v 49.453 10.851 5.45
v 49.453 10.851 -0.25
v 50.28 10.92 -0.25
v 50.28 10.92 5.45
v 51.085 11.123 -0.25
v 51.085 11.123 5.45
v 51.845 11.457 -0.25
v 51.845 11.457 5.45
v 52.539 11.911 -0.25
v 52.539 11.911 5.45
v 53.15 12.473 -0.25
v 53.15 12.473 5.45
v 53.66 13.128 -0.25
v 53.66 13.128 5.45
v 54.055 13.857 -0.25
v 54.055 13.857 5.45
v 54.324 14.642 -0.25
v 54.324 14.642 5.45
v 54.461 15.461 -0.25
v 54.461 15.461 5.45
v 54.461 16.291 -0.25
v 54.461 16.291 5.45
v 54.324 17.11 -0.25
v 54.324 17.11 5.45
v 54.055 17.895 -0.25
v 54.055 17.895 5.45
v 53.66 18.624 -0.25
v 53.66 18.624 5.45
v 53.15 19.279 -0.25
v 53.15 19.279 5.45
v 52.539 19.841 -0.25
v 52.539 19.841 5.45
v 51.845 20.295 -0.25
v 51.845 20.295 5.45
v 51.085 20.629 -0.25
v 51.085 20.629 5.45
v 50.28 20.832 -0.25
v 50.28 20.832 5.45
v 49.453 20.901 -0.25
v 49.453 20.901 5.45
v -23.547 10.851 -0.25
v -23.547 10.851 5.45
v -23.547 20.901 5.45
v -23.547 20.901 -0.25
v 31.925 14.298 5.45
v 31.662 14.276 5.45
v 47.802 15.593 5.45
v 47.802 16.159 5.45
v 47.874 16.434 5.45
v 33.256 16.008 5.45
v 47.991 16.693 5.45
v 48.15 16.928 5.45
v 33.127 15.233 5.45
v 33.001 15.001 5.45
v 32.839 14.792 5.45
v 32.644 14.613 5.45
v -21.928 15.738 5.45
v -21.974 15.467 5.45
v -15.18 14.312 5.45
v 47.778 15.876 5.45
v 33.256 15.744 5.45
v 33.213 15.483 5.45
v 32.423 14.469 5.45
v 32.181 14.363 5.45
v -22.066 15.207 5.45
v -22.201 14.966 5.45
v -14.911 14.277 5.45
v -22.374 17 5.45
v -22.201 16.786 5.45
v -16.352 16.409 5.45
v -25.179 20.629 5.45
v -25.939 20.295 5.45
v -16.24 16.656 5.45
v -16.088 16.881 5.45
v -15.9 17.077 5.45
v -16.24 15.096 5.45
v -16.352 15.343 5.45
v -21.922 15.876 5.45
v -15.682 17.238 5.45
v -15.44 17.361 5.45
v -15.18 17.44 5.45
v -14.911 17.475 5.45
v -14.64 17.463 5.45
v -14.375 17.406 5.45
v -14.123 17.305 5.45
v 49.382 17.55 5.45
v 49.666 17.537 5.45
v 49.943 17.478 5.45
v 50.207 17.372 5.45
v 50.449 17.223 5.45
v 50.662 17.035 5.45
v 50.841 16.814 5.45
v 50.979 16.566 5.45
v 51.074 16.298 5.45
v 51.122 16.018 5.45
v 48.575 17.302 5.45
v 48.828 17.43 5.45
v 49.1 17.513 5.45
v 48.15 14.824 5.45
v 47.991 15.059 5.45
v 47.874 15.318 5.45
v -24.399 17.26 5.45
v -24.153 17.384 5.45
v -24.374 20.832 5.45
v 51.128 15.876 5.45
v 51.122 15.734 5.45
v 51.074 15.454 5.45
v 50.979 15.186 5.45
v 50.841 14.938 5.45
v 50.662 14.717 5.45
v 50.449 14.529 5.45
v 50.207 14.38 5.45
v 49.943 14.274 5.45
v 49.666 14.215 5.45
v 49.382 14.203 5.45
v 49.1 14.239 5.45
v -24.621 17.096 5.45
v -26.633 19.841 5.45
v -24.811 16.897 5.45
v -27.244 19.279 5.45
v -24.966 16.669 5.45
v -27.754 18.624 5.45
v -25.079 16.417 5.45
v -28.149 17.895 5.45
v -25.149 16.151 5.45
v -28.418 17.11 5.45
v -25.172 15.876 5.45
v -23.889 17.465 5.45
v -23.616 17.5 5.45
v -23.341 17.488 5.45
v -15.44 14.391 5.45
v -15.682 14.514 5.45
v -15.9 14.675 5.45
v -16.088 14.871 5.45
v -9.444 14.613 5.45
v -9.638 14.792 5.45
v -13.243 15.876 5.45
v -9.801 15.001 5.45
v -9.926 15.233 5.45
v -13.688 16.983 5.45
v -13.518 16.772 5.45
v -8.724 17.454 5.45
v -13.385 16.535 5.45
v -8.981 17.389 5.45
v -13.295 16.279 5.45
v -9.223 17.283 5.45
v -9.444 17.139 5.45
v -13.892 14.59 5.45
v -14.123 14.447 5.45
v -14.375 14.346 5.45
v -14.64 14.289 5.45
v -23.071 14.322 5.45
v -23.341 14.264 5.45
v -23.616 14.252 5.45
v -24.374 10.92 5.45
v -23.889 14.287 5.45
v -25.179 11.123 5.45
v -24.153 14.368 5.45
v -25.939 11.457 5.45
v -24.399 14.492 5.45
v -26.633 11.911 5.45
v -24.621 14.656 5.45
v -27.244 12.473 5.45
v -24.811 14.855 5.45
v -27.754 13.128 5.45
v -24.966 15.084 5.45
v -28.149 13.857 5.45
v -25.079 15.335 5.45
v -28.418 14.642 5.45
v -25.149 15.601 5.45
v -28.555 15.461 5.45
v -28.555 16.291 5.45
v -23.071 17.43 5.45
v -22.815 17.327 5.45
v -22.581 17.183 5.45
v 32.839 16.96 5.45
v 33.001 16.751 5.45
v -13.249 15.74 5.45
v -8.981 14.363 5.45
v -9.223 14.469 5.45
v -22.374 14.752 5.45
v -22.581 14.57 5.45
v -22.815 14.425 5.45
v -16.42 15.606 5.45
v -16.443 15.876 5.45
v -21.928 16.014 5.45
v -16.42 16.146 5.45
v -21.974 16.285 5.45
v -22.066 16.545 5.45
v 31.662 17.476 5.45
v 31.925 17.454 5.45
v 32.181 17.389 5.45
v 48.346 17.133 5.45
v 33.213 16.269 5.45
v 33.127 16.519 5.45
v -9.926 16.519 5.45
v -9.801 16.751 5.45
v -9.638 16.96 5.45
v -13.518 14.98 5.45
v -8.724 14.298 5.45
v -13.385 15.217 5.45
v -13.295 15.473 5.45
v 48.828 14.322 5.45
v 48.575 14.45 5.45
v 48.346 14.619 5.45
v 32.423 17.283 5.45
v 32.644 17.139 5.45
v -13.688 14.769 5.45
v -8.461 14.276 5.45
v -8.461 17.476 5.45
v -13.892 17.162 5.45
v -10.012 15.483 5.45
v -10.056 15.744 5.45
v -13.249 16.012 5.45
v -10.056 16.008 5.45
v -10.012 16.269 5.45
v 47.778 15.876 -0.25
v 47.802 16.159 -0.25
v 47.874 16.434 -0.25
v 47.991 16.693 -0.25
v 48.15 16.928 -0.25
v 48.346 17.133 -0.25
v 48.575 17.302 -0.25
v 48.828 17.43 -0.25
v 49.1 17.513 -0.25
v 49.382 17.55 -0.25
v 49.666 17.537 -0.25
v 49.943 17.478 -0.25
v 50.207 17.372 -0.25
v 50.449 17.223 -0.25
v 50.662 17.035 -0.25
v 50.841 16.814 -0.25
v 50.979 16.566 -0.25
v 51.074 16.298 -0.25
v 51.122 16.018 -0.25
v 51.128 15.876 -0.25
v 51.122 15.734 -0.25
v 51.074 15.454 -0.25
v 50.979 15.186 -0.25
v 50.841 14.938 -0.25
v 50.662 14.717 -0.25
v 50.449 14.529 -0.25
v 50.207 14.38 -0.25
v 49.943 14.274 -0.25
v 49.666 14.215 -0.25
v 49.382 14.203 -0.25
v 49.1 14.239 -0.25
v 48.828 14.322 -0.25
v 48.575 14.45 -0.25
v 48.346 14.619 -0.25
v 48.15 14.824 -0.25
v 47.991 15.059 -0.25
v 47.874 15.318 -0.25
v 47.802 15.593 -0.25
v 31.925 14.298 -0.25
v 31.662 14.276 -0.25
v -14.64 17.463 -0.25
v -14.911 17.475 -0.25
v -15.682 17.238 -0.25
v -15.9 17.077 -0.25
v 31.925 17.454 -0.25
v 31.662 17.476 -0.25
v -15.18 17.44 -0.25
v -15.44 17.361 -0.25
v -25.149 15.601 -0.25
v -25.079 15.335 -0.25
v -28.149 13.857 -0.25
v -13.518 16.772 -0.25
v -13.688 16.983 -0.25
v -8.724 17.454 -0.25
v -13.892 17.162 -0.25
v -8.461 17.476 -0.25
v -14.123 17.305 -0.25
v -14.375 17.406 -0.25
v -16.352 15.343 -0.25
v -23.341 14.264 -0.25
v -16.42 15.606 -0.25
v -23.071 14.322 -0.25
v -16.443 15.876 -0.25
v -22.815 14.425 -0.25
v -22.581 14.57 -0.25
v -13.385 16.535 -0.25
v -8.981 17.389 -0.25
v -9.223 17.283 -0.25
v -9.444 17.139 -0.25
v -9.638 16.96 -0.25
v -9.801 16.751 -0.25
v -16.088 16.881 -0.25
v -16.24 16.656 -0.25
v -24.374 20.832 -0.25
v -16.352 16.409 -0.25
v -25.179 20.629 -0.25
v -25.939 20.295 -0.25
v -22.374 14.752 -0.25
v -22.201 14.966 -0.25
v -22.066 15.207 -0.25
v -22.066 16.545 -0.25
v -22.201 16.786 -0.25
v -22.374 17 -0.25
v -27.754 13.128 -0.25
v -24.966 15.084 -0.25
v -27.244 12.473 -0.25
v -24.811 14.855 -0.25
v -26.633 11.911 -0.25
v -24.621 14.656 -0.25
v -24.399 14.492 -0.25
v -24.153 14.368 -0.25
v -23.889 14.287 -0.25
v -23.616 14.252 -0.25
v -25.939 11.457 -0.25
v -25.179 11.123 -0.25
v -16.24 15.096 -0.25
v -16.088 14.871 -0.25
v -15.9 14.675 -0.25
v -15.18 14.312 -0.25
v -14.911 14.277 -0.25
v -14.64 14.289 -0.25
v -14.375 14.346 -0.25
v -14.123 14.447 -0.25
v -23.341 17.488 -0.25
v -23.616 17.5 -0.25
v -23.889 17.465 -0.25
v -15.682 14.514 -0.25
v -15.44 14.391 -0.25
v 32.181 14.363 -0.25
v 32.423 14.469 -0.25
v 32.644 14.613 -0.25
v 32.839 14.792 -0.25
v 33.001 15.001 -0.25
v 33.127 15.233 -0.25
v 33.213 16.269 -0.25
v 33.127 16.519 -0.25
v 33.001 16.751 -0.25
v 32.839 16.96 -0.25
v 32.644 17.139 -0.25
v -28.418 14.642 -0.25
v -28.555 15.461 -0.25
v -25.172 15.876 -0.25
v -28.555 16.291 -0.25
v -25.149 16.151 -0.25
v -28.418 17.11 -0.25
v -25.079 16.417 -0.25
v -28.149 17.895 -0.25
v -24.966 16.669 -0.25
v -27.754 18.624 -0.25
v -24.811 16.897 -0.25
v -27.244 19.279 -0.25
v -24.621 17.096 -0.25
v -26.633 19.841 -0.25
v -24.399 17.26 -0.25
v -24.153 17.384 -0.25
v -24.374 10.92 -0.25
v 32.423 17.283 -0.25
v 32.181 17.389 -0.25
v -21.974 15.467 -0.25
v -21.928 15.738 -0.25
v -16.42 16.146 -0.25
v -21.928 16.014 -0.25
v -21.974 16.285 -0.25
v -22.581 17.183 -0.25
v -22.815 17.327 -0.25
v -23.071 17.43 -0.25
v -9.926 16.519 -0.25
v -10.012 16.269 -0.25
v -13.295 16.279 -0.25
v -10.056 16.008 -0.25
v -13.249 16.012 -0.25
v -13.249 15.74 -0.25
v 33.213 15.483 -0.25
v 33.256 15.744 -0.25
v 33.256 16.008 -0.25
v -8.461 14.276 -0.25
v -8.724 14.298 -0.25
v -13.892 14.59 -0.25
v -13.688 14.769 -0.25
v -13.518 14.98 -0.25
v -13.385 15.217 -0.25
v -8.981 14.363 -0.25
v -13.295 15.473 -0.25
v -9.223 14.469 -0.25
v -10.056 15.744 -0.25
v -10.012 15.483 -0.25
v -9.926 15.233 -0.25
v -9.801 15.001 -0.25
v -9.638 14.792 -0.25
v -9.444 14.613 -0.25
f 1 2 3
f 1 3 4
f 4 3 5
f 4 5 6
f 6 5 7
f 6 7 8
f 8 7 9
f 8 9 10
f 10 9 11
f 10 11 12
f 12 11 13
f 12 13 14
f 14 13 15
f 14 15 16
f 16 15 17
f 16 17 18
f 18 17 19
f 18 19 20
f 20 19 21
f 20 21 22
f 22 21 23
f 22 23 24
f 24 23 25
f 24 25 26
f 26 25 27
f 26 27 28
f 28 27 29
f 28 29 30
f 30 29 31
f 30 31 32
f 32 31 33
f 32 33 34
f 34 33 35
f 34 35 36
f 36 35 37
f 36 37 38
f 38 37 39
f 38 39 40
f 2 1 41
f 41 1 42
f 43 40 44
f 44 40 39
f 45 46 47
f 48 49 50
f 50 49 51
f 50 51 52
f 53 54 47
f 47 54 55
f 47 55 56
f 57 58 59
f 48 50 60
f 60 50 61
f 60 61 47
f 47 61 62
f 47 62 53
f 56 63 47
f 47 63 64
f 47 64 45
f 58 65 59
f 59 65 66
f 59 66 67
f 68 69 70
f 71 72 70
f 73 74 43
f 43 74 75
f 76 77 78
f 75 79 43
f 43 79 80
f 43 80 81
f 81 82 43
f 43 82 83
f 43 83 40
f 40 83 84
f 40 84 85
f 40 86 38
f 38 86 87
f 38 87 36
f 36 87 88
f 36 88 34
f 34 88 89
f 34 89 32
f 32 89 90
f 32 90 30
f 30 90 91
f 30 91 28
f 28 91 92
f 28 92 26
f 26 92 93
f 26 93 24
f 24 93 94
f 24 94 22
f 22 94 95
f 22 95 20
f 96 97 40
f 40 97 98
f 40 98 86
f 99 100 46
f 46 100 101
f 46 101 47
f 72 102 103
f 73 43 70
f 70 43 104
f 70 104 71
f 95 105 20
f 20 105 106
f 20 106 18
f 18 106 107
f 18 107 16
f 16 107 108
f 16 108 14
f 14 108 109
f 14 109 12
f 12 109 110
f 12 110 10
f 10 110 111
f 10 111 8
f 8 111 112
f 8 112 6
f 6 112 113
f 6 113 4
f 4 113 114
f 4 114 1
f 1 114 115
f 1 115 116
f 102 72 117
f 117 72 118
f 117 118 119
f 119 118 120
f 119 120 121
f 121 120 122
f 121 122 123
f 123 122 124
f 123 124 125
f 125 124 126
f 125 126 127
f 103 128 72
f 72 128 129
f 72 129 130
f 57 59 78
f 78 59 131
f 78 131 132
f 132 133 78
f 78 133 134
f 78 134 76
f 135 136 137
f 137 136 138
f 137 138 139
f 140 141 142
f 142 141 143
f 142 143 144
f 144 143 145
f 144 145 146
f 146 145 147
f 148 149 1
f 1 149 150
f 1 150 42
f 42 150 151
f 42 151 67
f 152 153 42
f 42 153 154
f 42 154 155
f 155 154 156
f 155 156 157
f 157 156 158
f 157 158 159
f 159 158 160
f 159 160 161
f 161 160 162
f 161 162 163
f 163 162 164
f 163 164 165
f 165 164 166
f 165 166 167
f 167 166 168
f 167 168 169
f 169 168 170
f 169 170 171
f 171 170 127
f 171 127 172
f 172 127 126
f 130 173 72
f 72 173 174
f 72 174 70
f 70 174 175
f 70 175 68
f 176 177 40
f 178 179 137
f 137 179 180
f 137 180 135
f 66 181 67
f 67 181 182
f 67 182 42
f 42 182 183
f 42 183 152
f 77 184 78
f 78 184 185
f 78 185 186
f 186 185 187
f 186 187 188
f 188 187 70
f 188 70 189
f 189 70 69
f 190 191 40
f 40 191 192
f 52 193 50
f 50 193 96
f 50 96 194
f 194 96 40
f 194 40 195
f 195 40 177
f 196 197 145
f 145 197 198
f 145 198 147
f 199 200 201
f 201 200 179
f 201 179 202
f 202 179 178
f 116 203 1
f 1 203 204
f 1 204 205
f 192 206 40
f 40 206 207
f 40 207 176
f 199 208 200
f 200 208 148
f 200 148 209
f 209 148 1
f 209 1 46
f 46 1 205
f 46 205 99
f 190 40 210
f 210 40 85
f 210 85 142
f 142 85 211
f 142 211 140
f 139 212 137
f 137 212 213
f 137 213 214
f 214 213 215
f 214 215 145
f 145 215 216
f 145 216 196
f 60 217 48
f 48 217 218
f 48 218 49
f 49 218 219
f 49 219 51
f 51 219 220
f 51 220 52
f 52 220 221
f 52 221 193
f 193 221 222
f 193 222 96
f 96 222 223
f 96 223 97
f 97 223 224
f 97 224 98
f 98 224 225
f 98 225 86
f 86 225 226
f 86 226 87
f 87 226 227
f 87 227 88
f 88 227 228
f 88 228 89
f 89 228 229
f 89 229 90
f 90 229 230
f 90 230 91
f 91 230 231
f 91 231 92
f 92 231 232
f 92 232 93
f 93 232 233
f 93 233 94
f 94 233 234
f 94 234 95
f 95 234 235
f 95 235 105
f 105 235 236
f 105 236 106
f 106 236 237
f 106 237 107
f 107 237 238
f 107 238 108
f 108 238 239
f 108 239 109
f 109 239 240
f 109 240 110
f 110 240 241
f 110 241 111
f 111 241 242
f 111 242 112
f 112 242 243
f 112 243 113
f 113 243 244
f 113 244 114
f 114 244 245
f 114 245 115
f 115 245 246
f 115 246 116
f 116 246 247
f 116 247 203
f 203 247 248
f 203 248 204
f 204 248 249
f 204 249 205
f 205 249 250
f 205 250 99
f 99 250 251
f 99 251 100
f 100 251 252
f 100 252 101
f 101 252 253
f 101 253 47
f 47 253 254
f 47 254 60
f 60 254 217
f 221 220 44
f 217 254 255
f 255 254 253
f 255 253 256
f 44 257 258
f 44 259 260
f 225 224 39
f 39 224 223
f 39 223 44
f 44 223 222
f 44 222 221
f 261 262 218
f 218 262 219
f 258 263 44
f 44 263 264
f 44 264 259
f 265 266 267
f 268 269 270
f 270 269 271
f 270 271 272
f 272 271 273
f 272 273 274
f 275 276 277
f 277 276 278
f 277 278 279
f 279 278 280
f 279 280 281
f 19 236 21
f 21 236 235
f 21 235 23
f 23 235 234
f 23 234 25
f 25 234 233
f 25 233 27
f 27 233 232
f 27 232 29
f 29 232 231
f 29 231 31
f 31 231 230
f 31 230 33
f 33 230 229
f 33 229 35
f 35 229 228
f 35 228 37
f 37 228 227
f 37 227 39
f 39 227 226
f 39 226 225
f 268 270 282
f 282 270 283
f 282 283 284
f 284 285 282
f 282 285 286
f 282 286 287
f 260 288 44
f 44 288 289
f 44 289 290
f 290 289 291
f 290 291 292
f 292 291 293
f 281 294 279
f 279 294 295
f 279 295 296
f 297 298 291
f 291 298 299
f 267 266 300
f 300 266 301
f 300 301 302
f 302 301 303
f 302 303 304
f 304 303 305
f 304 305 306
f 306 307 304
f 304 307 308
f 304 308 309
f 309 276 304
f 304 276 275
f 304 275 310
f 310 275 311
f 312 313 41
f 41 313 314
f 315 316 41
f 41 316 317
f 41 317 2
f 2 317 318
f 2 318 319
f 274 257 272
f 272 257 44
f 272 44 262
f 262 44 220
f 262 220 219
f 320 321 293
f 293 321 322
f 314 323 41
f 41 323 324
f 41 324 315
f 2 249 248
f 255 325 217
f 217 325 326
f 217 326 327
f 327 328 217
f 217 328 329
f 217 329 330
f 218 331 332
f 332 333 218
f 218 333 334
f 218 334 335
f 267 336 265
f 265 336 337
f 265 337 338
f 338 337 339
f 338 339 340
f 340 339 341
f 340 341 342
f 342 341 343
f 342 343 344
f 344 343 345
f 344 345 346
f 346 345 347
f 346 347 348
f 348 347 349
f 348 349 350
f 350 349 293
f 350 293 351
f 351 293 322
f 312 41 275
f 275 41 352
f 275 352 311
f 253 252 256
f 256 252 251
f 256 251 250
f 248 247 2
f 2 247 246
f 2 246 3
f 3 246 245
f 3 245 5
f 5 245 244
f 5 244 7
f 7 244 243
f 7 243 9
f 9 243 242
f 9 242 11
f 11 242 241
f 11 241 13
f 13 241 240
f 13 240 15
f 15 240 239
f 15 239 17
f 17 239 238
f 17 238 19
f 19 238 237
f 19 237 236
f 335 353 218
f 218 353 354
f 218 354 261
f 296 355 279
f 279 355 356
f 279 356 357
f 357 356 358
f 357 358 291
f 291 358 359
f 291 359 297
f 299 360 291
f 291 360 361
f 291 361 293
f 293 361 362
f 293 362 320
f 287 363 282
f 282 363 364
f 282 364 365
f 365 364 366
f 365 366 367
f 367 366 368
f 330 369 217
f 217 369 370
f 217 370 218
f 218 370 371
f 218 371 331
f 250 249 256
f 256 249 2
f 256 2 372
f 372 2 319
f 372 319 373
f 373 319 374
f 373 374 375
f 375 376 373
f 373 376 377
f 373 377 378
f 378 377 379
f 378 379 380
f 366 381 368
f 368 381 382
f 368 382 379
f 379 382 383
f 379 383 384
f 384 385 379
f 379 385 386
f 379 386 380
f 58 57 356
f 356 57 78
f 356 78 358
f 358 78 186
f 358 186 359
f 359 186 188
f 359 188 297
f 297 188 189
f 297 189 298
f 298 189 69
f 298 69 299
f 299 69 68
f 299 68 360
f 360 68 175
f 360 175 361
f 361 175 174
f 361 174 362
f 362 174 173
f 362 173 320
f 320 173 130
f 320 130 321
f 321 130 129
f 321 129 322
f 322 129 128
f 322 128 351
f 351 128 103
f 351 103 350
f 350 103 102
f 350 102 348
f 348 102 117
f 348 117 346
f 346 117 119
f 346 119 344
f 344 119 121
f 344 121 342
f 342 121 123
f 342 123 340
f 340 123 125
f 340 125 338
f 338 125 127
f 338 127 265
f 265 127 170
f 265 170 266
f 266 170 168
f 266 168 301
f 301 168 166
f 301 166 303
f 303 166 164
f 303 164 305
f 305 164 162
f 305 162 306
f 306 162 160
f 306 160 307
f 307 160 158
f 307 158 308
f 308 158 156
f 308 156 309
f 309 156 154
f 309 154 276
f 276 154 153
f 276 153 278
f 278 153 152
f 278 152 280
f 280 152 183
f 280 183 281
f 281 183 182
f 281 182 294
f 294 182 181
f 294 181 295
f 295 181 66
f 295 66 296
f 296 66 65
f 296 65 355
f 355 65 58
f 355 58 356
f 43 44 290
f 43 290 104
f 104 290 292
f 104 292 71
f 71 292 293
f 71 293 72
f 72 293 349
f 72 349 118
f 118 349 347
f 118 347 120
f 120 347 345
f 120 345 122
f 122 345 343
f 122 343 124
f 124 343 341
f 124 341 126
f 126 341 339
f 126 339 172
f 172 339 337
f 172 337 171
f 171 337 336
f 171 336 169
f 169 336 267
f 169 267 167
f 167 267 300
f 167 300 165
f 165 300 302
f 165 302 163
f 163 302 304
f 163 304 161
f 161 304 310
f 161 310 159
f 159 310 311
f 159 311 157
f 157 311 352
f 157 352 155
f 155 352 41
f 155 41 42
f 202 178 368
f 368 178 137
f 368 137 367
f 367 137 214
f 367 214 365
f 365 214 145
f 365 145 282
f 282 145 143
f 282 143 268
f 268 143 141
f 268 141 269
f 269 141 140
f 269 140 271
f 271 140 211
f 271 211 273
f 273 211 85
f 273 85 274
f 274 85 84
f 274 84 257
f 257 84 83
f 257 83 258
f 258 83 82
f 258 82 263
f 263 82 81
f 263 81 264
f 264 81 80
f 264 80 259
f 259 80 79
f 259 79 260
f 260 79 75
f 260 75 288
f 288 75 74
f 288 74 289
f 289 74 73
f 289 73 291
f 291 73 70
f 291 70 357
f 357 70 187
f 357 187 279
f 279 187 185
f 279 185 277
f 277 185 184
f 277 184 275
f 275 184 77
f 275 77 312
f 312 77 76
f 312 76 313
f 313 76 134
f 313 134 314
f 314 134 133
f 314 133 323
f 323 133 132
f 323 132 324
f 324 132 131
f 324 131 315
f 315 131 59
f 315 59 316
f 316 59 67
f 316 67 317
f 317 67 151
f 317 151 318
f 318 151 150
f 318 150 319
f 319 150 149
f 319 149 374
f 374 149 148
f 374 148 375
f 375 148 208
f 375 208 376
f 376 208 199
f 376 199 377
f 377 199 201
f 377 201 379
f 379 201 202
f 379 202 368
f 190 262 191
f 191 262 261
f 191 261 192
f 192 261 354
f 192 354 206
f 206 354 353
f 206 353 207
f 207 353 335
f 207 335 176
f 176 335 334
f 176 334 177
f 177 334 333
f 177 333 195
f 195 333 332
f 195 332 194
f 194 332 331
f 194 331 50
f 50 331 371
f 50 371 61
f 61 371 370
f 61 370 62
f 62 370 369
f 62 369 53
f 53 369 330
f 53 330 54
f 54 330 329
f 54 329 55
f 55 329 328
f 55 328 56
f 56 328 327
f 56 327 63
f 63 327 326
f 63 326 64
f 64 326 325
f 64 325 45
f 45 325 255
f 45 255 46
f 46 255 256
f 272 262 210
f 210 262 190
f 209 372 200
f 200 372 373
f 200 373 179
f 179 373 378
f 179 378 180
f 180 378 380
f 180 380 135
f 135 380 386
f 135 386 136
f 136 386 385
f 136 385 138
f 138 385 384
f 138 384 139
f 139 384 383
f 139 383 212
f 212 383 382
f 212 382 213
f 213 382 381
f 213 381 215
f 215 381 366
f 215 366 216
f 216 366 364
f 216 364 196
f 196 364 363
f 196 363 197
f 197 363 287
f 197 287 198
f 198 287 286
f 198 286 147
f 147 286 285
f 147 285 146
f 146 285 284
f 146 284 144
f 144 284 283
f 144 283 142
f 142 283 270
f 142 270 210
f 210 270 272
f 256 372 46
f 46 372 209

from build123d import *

# Parameters (mm, degrees)
EXTRUDE_1_DEPTH      = 2.2
EXTRUDE_2_DEPTH      = 3.25
SKETCH_3_W           = 50
SKETCH_3_H           = 10.05
EXTRUDE_3_DEPTH      = 3.25
CUT_EXTRUDE_1_DEPTH  = 30
EXTRUDE_4_REACH      = 56.389
SKETCH_6_R           = 5.025
SKETCH_8_R           = 1.675
SKETCH_8_R_2         = 0.84
CUT_EXTRUDE_3_DEPTH  = 55
SKETCH_9_W           = 28.473000816
SKETCH_9_H           = 14.532409192
CUT_EXTRUDE_4_DEPTH  = 3
EXTRUDE_5_DEPTH      = 2.45
SKETCH_11_W          = 12.614203935
SKETCH_11_H          = 10.05
EXTRUDE_6_DEPTH      = 3
SKETCH_12_W          = 36.628466797
SKETCH_12_H          = 15.348537224
CUT_EXTRUDE_5_DEPTH  = 10
SKETCH_13_W          = 5.35
SKETCH_13_H          = 5.35
CUT_EXTRUDE_6_DEPTH  = 14
SKETCH_14_R          = 1.1
CUT_EXTRUDE_7_DEPTH  = 14
SKETCH_15_R          = 1.1
CUT_EXTRUDE_8_DEPTH  = 10
SKETCH_16_R          = 1.625
EXTRUDE_7_DEPTH      = 5.7
SKETCH_17_W          = 19.923143876
SKETCH_17_H          = 15.083058075
CUT_EXTRUDE_9_DEPTH  = 3
SKETCH_18_R          = 1.675
SKETCH_18_R_2        = 1.6
CUT_EXTRUDE_10_DEPTH = 6


with BuildPart() as part:
    # 草图1 → 凸台-拉伸1 (new body)
    with BuildSketch(Plane.XY):
        with BuildLine():
            Line((1.539836705, 12.851012384), (15.55297303, 14.251012384))
            ThreePointArc((15.55297303, 14.251012384), (17.193415997, 16.063512384), (15.55297303, 17.876012384))
            Line((15.55297303, 17.876012384), (1.500532553, 18.901012384))
            ThreePointArc((1.500532553, 18.901012384), (0.527100583, 19.384612538), (-0.54702697, 19.551012384))
            Line((-0.54702697, 19.551012384), (-0.54702697, 20.901012384))
            Line((-0.54702697, 20.901012384), (19.51277613, 20.901012384))
            Line((19.51277613, 20.901012384), (41.45297303, 20.901012384))
            Line((41.45297303, 20.901012384), (41.45297303, 10.851012384))
            Line((41.45297303, 10.851012384), (-0.54702697, 10.851012384))
            Line((-0.54702697, 10.851012384), (-0.54702697, 12.201012384))
            ThreePointArc((-0.54702697, 12.201012384), (0.54584768, 12.367273294), (1.539836705, 12.851012384))
        make_face()
    extrude(amount=EXTRUDE_1_DEPTH)

    # 草图2 → 凸台-拉伸2 (add)
    with BuildSketch(Plane(origin=(0, 0, 0), x_dir=(-1, 0, 0), z_dir=(0, 0, -1))):
        Polygon((-19.51277613, 10.851012384), (-49.45297303, 10.851012384), (-49.45297303, 20.901012384), (-19.51277613, 20.901012384), (0.54702697, 20.901012384), (0.54702697, 10.851012384), align=None)
    extrude(amount=EXTRUDE_2_DEPTH)

    # 草图3 → 凸台-拉伸3 (add)
    with BuildSketch(Plane.XY.offset(2.2)):
        with Locations((24.45297303, 15.876012384)):
            Rectangle(SKETCH_3_W, SKETCH_3_H)
    extrude(amount=EXTRUDE_3_DEPTH)

    # 草图4 → 切除-拉伸1 (cut, symmetric)
    with BuildSketch(Plane.XY):
        with BuildLine():
            Line((-0.54702697, 19.551012384), (-2.235397712, 16.616091152))
            Line((-2.235397712, 16.616091152), (-1.110896638, 12.310548833))
            Line((-1.110896638, 12.310548833), (-0.54702697, 12.201012384))
            ThreePointArc((-0.54702697, 12.201012384), (0.54584768, 12.367273294), (1.539836705, 12.851012384))
            ThreePointArc((1.539836705, 12.851012384), (2.773180655, 15.88415254), (1.500532553, 18.901012384))
            ThreePointArc((1.500532553, 18.901012384), (0.527100583, 19.384612538), (-0.54702697, 19.551012384))
        make_face()
    extrude(amount=CUT_EXTRUDE_1_DEPTH, both=True, mode=Mode.SUBTRACT)

    # 凸台-拉伸4: up to this face of the body (flat: up to its plane)
    extrude_4_end = Plane(part.part.faces().sort_by_distance((25.407741746, 15.876338503, 5.45))[0])
    # 草图6 → 凸台-拉伸4 (add, up to the picked face)
    with BuildSketch(Plane(origin=(0, 0, -3.25), x_dir=(-1, 0, 0), z_dir=(0, 0, -1)), mode=Mode.PRIVATE) as extrude_4_sk1:
        with Locations(Location((-49.45297303, 15.876012384, 0), (0, 0, 90))):
            Circle(SKETCH_6_R)
    extrude_4_tool1 = split(extrude(extrude_4_sk1.sketch, amount=-EXTRUDE_4_REACH, mode=Mode.PRIVATE), bisect_by=extrude_4_end, keep=Keep.BOTH, mode=Mode.PRIVATE)
    add(extrude_4_tool1.solids().sort_by(Axis((49.452973, 15.876012, -3.25), (0, 0, 1)))[0])

    # 草图8 → 切除-拉伸3 (cut)
    with BuildSketch(Plane(origin=(0, 0, -3.25), x_dir=(-1, 0, 0), z_dir=(0, 0, -1))):
        with Locations((-49.45297303, 15.876012384)):
            Circle(SKETCH_8_R)
        with Locations(Location((-7.95297303, 15.856360308, 0), (0, 0, 180))):
            Circle(SKETCH_8_R_2)
    extrude(amount=-CUT_EXTRUDE_3_DEPTH, mode=Mode.SUBTRACT)

    # 草图9 → 切除-拉伸4 (cut)
    with BuildSketch(Plane(origin=(0, 0, -3.25), x_dir=(-1, 0, 0), z_dir=(0, 0, -1))):
        with Locations((-42.648638606, 15.039406696)):
            Rectangle(SKETCH_9_W, SKETCH_9_H)
    extrude(amount=-CUT_EXTRUDE_4_DEPTH, mode=Mode.SUBTRACT)

    # 草图10 → 凸台-拉伸5 (add)
    with BuildSketch(Plane(origin=(0, 0, 2.2), x_dir=(-1, 0, 0), z_dir=(0, 0, -1))):
        with BuildLine():
            Line((-49.45297303, 20.901012384), (-38.466384114, 20.901012384))
            Line((-38.466384114, 20.901012384), (-38.466384114, 10.851012384))
            Line((-38.466384114, 10.851012384), (-49.45297303, 10.851012384))
            ThreePointArc((-49.45297303, 10.851012384), (-46.217908976, 15.876012384), (-49.45297303, 20.901012384))
        make_face()
    extrude(amount=EXTRUDE_5_DEPTH)

    # 草图11 → 凸台-拉伸6 (add)
    with BuildSketch(Plane(origin=(0, 0, -3.25), x_dir=(-1, 0, 0), z_dir=(0, 0, -1))):
        with Locations((-32.625453647, 15.876012384)):
            Rectangle(SKETCH_11_W, SKETCH_11_H)
    extrude(amount=-EXTRUDE_6_DEPTH)

    # 草图12 → 切除-拉伸5 (cut)
    with BuildSketch(Plane(origin=(0, 0, -3.25), x_dir=(-1, 0, 0), z_dir=(0, 0, -1))):
        with Locations((-5.618322216, 15.103365543)):
            Rectangle(SKETCH_12_W, SKETCH_12_H)
    extrude(amount=-CUT_EXTRUDE_5_DEPTH, mode=Mode.SUBTRACT)

    # 草图13 → 切除-拉伸6 (cut)
    with BuildSketch(Plane.ZY.offset(-23.932555614)):
        with Locations((1.1, 16.124405573)):
            Rectangle(SKETCH_13_W, SKETCH_13_H)
    extrude(amount=-CUT_EXTRUDE_6_DEPTH, mode=Mode.SUBTRACT)

    # 草图14 → 切除-拉伸7 (cut)
    with BuildSketch(Plane(origin=(0, 20.901012384, 0), x_dir=(1, 0, 0), z_dir=(0, 1, 0))):
        with Locations(Location((30.538219594, -1.1, 0), (0, 0, 270))):
            Circle(SKETCH_14_R)
    extrude(amount=-CUT_EXTRUDE_7_DEPTH, mode=Mode.SUBTRACT)

    # 草图15 → 切除-拉伸8 (cut)
    with BuildSketch(Plane.XY.offset(5.45)):
        with Locations((36.879929969, 15.882801083)):
            Circle(SKETCH_15_R)
    extrude(amount=-CUT_EXTRUDE_8_DEPTH, mode=Mode.SUBTRACT)

    # 草图16 → 凸台-拉伸7 (add)
    with BuildSketch(Plane(origin=(0, 0, -0.25), x_dir=(-1, 0, 0), z_dir=(0, 0, -1))):
        with BuildLine():
            Line((-49.45297303, 20.901012384), (23.54702697, 20.901012384))
            ThreePointArc((23.54702697, 20.901012384), (28.57202697, 15.876012384), (23.54702697, 10.851012384))
            Line((23.54702697, 10.851012384), (-49.45297303, 10.851012384))
            Line((-49.45297303, 10.851012384), (-49.45297303, 20.901012384))
        make_face()
        with Locations((23.54702697, 15.876012384)):
            Circle(SKETCH_16_R, mode=Mode.SUBTRACT)
    extrude(amount=-EXTRUDE_7_DEPTH)

    # 草图17 → 切除-拉伸9 (cut)
    with BuildSketch(Plane(origin=(0, 0, -3.25), x_dir=(-1, 0, 0), z_dir=(0, 0, -1))):
        with Locations((-33.178239607, 16.007261263)):
            Rectangle(SKETCH_17_W, SKETCH_17_H)
    extrude(amount=-CUT_EXTRUDE_9_DEPTH, mode=Mode.SUBTRACT)

    # 草图18 → 切除-拉伸10 (cut)
    with BuildSketch(Plane(origin=(0, 0, -0.25), x_dir=(-1, 0, 0), z_dir=(0, 0, -1))):
        with Locations(Location((-49.45297303, 15.876012384, 0), (0, 0, 180))):
            Circle(SKETCH_18_R)
        with Locations((14.84318256, 15.876012384)):
            Circle(SKETCH_18_R_2)
        with BuildLine():
            Line((-31.661597205, 17.476012384), (8.461046927, 17.476012384))
            ThreePointArc((8.461046927, 17.476012384), (10.061046927, 15.876012384), (8.461046927, 14.276012384))
            Line((8.461046927, 14.276012384), (-31.661597205, 14.276012384))
            ThreePointArc((-31.661597205, 14.276012384), (-33.261597205, 15.876012384), (-31.661597205, 17.476012384))
        make_face()
    extrude(amount=-CUT_EXTRUDE_10_DEPTH, mode=Mode.SUBTRACT)


solid = part.part
